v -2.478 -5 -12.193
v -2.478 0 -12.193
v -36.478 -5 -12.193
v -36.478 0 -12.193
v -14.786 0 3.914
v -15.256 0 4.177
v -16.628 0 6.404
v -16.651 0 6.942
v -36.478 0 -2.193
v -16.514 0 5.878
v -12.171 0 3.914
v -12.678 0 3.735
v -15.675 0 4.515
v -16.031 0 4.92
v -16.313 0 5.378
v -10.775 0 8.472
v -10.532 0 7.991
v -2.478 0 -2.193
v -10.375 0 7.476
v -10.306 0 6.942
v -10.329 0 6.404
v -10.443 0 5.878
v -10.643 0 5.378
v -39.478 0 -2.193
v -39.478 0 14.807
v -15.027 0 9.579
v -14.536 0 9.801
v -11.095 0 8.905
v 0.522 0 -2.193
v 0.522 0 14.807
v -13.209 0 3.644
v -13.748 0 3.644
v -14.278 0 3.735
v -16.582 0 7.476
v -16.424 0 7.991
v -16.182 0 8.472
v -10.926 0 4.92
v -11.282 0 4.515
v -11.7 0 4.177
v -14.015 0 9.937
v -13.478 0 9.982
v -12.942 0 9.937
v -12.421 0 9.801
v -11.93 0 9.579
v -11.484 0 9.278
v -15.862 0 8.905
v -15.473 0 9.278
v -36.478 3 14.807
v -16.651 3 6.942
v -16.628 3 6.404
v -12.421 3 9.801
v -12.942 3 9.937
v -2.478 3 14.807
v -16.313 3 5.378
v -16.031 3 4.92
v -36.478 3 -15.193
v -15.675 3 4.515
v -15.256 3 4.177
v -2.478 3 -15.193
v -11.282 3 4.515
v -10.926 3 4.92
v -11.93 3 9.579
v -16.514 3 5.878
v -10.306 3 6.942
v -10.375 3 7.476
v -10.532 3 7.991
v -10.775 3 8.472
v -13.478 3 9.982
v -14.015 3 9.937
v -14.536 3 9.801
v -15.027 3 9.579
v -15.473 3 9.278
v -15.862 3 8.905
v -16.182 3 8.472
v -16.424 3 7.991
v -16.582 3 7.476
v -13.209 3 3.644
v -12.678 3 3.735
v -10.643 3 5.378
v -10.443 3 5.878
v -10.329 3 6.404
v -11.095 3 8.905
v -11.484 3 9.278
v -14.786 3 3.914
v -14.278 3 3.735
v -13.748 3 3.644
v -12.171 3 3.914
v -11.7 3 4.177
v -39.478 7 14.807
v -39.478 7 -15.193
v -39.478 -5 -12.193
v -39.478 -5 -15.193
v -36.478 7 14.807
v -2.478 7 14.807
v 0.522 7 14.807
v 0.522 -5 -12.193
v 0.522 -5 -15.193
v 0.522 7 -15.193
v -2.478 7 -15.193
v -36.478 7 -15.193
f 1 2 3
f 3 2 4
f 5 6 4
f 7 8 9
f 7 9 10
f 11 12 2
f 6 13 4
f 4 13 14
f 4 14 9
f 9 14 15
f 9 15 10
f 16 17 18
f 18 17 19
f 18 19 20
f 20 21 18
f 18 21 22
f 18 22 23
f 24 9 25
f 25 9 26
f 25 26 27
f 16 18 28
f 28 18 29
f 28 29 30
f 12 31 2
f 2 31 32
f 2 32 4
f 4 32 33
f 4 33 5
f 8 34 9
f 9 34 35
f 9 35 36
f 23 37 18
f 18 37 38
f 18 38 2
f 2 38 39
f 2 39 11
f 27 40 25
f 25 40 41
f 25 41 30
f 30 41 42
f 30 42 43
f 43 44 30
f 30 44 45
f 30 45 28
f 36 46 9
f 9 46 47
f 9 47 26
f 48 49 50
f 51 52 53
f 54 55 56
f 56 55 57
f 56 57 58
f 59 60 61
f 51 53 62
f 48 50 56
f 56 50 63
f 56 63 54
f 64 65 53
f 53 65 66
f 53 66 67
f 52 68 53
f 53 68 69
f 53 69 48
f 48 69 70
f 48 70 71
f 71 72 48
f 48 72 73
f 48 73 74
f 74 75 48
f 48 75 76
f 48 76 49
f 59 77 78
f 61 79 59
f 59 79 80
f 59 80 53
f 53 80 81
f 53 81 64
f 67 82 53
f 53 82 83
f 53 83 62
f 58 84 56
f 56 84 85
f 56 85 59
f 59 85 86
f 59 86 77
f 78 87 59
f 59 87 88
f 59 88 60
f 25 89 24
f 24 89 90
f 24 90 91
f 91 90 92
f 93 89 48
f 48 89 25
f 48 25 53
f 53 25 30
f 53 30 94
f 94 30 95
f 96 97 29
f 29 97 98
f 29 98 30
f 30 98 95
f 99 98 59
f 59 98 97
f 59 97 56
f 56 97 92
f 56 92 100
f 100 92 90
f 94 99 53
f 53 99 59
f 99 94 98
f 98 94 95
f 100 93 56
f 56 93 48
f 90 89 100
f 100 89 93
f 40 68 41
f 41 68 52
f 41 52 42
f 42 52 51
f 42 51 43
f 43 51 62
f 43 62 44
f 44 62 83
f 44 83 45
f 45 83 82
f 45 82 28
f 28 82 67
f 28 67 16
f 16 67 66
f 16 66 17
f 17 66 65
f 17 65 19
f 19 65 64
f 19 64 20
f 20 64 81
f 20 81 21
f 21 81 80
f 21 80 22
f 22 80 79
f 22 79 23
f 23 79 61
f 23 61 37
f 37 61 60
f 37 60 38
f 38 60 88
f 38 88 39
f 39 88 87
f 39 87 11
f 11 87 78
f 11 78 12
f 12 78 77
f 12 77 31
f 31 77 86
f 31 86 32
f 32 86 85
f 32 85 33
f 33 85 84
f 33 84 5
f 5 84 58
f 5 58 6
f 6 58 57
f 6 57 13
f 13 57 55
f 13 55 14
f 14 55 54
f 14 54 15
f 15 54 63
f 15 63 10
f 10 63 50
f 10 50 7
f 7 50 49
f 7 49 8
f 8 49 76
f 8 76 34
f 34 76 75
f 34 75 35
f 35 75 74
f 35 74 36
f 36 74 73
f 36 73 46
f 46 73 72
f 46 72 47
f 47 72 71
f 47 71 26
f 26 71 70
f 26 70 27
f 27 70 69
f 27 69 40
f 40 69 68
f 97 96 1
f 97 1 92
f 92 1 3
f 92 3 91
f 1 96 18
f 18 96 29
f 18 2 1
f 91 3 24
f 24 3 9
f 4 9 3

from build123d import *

# Parameters (mm, degrees)
SKETCH1_W           = 40
SKETCH1_H           = 30
BOSS_EXTRUDE2_DEPTH = 3
SKETCH2_W           = 3
SKETCH2_H           = 30
BOSS_EXTRUDE3_DEPTH = 4
SKETCH3_W           = 3
SKETCH3_H           = 30
BOSS_EXTRUDE4_DEPTH = 4
SKETCH4_R           = 3.175
CUT_EXTRUDE1_DEPTH  = 43.489507814
SKETCH5_W           = 40
SKETCH5_H           = 3
BOSS_EXTRUDE5_DEPTH = 5
RIB4_REACH          = 50.765
SKETCH8_WALL_W      = 110.70982261
SKETCH8_WALL_H      = 3
RIB5_REACH          = 50.765
SKETCH10_WALL_W     = 110.70982261
SKETCH10_WALL_H     = 3


with BuildPart() as part:
    # Sketch1 → Boss-Extrude2 (new body)
    with BuildSketch(Plane(origin=(0, 0, 0), x_dir=(1, 0, 0), z_dir=(0, 1, 0))):
        with Locations((-19.478413565, 0.192535557)):
            Rectangle(SKETCH1_W, SKETCH1_H)
    extrude(amount=BOSS_EXTRUDE2_DEPTH)

    # Sketch2 → Boss-Extrude3 (add)
    with BuildSketch(Plane(origin=(0, 3, 0), x_dir=(1, 0, 0), z_dir=(0, 1, 0))):
        with Locations((-0.978413565, 0.192535557)):
            Rectangle(SKETCH2_W, SKETCH2_H)
    extrude(amount=BOSS_EXTRUDE3_DEPTH)

    # Sketch3 → Boss-Extrude4 (add)
    with BuildSketch(Plane(origin=(0, 3, 0), x_dir=(1, 0, 0), z_dir=(0, 1, 0))):
        with Locations((-37.978413565, 0.192535557)):
            Rectangle(SKETCH3_W, SKETCH3_H)
    extrude(amount=BOSS_EXTRUDE4_DEPTH)

    # Sketch4 → Cut-Extrude1 (cut, through all)
    with BuildSketch(Plane(origin=(0, 3, 0), x_dir=(1, 0, 0), z_dir=(0, 1, 0))):
        with Locations(Location((-13.478413565, -6.807464443, 0), (0, 0, 270))):
            Circle(SKETCH4_R)
    extrude(amount=-CUT_EXTRUDE1_DEPTH, mode=Mode.SUBTRACT)

    # Sketch5 → Boss-Extrude5 (add)
    with BuildSketch(Plane(origin=(0, 0, 0), x_dir=(-1, 0, 0), z_dir=(0, -1, 0))):
        with Locations((19.478413565, 13.692535557)):
            Rectangle(SKETCH5_W, SKETCH5_H)
    extrude(amount=BOSS_EXTRUDE5_DEPTH)

    # Sketch8 wall → Rib4 (add, up to next)
    with BuildSketch(Plane(origin=(0.521586435, -2.5, -7.192535557), x_dir=(0, 0.4472135955, 0.894427191), z_dir=(0, 0.894427191, -0.4472135955)), mode=Mode.PRIVATE) as rib4_sk1:
        with Locations((0, -1.5)):
            Rectangle(SKETCH8_WALL_W, SKETCH8_WALL_H)
    rib4_tool1 = extrude(rib4_sk1.sketch, amount=RIB4_REACH, mode=Mode.PRIVATE) - part.part
    add(rib4_tool1.solids().sort_by_distance((0.521586435, -2.5, -7.192535557))[0])

    # Sketch10 wall → Rib5 (add, up to next)
    with BuildSketch(Plane(origin=(-39.478413565, -2.5, -7.192535557), x_dir=(0, 0.4472135955, 0.894427191), z_dir=(0, 0.894427191, -0.4472135955)), mode=Mode.PRIVATE) as rib5_sk1:
        with Locations((0, 1.5)):
            Rectangle(SKETCH10_WALL_W, SKETCH10_WALL_H)
    rib5_tool1 = extrude(rib5_sk1.sketch, amount=RIB5_REACH, mode=Mode.PRIVATE) - part.part
    add(rib5_tool1.solids().sort_by_distance((-39.478413565, -2.5, -7.192535557))[0])


solid = part.part
